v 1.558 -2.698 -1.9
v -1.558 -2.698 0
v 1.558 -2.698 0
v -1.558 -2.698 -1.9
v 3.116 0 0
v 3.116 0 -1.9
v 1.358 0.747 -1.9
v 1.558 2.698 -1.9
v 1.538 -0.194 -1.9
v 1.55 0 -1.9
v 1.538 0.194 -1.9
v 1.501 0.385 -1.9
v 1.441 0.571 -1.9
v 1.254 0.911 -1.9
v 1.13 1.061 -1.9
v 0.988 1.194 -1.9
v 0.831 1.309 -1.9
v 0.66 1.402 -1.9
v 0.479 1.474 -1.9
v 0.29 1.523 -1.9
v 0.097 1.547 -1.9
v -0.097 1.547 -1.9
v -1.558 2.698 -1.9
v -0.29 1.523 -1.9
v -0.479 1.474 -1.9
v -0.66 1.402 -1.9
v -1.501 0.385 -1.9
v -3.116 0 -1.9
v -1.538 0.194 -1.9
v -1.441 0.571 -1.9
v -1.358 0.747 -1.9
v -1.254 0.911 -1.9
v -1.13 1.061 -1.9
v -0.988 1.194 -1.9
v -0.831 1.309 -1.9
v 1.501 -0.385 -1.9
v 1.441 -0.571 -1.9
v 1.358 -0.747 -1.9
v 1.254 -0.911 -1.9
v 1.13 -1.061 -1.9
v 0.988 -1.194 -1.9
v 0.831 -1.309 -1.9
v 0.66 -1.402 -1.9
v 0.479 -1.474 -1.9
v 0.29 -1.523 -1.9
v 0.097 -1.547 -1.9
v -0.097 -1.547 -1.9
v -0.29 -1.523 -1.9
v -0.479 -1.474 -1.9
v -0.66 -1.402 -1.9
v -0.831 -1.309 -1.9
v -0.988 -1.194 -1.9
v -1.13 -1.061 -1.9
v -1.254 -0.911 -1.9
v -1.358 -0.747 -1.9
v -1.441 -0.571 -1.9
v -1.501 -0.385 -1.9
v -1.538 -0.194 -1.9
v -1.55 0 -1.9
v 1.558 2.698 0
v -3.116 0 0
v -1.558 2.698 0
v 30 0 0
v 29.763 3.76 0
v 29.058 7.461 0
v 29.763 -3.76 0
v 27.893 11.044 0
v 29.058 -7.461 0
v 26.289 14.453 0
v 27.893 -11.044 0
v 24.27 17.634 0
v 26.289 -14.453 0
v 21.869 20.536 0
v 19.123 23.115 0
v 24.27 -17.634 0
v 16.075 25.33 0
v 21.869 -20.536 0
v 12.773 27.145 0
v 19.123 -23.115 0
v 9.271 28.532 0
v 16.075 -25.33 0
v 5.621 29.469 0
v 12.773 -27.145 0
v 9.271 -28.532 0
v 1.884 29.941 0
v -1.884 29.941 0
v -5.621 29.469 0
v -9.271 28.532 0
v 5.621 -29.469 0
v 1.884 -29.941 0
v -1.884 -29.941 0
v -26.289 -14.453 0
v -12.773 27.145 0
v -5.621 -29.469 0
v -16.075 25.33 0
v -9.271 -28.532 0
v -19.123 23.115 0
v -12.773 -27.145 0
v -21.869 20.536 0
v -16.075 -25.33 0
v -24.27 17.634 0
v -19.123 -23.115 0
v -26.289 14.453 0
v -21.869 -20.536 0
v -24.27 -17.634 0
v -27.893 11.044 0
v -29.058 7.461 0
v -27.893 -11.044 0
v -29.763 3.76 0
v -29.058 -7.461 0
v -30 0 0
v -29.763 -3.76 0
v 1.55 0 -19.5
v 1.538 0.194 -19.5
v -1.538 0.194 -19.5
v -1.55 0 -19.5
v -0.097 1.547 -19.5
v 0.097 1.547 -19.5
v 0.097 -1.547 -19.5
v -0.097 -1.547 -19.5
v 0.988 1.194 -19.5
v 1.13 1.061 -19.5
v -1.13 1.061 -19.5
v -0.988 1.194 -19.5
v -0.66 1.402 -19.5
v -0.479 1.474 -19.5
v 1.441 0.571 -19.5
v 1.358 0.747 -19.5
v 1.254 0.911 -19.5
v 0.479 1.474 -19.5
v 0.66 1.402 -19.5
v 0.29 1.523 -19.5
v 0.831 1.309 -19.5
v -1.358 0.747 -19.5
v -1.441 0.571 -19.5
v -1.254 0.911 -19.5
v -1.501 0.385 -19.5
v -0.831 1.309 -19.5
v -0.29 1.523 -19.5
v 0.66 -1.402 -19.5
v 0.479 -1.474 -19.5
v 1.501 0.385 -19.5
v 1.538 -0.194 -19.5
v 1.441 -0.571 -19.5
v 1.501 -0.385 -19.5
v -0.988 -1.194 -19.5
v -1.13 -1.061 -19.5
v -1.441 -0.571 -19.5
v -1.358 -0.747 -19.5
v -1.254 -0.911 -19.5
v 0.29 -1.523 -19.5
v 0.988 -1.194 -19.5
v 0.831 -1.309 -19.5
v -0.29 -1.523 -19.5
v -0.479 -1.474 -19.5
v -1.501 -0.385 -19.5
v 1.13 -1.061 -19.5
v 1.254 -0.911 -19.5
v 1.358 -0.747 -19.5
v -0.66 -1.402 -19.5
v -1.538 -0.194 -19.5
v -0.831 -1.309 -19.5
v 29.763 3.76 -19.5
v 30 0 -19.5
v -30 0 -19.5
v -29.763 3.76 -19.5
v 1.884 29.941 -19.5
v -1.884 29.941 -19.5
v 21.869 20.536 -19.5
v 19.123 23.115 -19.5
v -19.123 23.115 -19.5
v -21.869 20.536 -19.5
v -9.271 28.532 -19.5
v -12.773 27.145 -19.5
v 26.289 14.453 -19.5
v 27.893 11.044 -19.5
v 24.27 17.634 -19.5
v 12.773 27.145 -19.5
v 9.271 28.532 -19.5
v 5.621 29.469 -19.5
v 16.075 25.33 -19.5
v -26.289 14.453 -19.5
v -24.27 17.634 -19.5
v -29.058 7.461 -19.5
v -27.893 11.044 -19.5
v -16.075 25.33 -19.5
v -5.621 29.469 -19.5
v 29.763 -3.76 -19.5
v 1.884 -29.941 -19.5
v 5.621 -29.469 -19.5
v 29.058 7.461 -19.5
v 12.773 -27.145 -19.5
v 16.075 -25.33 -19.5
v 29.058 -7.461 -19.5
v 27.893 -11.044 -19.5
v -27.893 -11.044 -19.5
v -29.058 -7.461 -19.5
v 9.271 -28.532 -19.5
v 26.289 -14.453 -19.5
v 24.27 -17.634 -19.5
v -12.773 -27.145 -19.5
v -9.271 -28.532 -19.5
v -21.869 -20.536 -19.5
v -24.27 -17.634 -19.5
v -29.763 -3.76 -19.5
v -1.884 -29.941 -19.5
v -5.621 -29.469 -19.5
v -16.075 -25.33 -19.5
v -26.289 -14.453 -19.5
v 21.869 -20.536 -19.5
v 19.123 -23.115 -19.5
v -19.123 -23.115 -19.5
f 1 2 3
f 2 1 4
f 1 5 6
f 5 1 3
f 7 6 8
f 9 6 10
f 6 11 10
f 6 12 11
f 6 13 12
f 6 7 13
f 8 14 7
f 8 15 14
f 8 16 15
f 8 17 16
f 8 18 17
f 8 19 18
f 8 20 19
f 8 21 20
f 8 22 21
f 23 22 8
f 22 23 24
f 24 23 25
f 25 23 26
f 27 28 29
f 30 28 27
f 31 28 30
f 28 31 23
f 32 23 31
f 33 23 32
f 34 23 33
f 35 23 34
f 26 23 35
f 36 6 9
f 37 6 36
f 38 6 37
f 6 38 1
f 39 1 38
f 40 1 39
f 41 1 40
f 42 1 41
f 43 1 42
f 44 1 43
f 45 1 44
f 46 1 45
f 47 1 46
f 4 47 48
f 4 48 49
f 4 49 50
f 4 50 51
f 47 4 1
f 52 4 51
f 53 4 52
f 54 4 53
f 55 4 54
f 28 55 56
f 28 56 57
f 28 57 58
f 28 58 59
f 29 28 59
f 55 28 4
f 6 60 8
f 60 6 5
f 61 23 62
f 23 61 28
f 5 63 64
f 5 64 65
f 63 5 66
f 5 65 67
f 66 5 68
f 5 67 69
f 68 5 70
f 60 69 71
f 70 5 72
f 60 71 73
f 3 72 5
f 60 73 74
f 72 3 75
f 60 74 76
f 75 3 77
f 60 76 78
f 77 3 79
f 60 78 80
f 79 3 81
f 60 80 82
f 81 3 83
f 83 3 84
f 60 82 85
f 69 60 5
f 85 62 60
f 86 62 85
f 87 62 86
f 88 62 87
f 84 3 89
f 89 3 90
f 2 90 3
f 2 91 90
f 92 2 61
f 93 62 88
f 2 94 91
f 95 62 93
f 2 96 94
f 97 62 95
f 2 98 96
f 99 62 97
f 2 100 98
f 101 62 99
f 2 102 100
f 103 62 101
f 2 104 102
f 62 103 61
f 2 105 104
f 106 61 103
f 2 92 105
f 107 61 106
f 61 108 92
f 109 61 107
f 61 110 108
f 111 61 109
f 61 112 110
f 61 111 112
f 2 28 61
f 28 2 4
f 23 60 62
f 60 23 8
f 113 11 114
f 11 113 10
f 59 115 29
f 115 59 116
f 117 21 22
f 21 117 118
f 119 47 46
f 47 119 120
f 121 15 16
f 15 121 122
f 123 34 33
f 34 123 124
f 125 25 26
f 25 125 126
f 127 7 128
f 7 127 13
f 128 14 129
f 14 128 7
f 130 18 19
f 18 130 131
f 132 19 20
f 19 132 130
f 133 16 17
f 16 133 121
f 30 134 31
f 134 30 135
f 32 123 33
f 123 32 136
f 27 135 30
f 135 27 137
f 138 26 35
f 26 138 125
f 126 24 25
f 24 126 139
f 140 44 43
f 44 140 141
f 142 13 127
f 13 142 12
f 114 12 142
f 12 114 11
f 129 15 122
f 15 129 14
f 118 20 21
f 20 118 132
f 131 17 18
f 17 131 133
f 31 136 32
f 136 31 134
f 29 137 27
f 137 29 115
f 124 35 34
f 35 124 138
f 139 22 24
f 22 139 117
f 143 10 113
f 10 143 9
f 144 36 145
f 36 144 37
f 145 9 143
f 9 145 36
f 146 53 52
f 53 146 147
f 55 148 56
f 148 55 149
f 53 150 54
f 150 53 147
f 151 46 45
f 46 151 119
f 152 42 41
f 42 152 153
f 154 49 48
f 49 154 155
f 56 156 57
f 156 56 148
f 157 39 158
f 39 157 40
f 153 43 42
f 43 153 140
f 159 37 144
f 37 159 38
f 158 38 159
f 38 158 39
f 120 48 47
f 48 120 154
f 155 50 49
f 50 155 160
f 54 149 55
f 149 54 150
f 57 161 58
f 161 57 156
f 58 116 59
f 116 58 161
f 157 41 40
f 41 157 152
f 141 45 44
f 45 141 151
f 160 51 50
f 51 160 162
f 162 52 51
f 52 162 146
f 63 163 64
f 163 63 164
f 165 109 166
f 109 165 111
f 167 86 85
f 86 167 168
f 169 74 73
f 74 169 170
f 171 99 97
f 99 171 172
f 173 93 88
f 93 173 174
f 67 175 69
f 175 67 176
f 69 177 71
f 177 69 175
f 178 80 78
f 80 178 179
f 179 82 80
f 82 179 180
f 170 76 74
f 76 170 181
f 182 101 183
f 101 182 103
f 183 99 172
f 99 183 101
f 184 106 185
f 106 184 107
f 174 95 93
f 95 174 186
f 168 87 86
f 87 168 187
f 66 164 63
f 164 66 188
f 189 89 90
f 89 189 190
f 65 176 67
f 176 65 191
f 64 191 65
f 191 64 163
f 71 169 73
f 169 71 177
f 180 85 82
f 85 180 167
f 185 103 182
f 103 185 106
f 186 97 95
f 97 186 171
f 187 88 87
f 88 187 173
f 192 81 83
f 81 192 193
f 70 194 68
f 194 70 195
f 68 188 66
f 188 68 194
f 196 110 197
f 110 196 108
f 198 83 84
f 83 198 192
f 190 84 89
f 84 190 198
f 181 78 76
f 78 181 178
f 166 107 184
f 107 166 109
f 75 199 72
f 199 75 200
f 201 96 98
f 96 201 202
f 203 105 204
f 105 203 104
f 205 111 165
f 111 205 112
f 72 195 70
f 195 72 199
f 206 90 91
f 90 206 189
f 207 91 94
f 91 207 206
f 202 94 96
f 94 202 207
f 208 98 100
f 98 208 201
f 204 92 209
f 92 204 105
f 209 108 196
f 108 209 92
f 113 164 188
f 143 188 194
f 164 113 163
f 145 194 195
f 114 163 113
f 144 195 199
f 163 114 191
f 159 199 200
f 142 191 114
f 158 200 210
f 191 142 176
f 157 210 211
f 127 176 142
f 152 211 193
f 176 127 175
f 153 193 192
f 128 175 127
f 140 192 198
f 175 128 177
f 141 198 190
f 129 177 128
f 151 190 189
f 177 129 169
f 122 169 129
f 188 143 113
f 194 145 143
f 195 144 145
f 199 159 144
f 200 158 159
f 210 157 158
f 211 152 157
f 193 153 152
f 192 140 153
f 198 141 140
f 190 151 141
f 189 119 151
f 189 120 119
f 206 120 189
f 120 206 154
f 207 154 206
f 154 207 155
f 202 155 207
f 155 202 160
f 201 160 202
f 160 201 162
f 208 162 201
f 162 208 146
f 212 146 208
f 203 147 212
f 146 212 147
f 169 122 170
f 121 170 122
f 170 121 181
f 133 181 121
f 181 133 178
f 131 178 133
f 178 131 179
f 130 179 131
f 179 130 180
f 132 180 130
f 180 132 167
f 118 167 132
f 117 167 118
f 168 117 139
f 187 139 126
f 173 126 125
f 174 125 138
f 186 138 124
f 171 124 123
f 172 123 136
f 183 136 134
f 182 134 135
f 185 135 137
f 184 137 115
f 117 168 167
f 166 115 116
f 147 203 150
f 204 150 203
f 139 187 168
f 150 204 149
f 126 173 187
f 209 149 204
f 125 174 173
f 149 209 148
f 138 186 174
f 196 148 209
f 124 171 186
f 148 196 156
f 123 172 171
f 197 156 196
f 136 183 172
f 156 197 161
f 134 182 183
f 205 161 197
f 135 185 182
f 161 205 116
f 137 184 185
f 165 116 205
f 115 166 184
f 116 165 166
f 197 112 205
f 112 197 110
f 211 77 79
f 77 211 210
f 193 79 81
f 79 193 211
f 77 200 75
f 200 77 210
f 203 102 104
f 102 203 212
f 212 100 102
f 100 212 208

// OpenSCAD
$fn = 50;

difference() {
	union() {
		translate(v = [0, 0, -19.5]) {
			cylinder(h = 19.5, r = 30.0);
		}
	}
	union() {
		translate(v = [0, 0, 0]) {
			rotate(a = [0, 0, 0]) {
				difference() {
					union() {
						translate(v = [0, 0, -1.9]) {
							linear_extrude(height = 1.9) {
								polygon(points = [[3.1158, 0.0], [1.5579000000000005, 2.698361953111554], [-1.5578999999999994, 2.6983619531115544], [-3.1158, 3.815754496783323e-16], [-1.5579000000000014, -2.6983619531115535], [1.557899999999998, -2.6983619531115552]]);
							}
						}
					}
					union();
				}
			}
		}
		#translate(v = [0, 0, -100.0]) {
			cylinder(h = 200, r = 1.55);
		}
	}
}
